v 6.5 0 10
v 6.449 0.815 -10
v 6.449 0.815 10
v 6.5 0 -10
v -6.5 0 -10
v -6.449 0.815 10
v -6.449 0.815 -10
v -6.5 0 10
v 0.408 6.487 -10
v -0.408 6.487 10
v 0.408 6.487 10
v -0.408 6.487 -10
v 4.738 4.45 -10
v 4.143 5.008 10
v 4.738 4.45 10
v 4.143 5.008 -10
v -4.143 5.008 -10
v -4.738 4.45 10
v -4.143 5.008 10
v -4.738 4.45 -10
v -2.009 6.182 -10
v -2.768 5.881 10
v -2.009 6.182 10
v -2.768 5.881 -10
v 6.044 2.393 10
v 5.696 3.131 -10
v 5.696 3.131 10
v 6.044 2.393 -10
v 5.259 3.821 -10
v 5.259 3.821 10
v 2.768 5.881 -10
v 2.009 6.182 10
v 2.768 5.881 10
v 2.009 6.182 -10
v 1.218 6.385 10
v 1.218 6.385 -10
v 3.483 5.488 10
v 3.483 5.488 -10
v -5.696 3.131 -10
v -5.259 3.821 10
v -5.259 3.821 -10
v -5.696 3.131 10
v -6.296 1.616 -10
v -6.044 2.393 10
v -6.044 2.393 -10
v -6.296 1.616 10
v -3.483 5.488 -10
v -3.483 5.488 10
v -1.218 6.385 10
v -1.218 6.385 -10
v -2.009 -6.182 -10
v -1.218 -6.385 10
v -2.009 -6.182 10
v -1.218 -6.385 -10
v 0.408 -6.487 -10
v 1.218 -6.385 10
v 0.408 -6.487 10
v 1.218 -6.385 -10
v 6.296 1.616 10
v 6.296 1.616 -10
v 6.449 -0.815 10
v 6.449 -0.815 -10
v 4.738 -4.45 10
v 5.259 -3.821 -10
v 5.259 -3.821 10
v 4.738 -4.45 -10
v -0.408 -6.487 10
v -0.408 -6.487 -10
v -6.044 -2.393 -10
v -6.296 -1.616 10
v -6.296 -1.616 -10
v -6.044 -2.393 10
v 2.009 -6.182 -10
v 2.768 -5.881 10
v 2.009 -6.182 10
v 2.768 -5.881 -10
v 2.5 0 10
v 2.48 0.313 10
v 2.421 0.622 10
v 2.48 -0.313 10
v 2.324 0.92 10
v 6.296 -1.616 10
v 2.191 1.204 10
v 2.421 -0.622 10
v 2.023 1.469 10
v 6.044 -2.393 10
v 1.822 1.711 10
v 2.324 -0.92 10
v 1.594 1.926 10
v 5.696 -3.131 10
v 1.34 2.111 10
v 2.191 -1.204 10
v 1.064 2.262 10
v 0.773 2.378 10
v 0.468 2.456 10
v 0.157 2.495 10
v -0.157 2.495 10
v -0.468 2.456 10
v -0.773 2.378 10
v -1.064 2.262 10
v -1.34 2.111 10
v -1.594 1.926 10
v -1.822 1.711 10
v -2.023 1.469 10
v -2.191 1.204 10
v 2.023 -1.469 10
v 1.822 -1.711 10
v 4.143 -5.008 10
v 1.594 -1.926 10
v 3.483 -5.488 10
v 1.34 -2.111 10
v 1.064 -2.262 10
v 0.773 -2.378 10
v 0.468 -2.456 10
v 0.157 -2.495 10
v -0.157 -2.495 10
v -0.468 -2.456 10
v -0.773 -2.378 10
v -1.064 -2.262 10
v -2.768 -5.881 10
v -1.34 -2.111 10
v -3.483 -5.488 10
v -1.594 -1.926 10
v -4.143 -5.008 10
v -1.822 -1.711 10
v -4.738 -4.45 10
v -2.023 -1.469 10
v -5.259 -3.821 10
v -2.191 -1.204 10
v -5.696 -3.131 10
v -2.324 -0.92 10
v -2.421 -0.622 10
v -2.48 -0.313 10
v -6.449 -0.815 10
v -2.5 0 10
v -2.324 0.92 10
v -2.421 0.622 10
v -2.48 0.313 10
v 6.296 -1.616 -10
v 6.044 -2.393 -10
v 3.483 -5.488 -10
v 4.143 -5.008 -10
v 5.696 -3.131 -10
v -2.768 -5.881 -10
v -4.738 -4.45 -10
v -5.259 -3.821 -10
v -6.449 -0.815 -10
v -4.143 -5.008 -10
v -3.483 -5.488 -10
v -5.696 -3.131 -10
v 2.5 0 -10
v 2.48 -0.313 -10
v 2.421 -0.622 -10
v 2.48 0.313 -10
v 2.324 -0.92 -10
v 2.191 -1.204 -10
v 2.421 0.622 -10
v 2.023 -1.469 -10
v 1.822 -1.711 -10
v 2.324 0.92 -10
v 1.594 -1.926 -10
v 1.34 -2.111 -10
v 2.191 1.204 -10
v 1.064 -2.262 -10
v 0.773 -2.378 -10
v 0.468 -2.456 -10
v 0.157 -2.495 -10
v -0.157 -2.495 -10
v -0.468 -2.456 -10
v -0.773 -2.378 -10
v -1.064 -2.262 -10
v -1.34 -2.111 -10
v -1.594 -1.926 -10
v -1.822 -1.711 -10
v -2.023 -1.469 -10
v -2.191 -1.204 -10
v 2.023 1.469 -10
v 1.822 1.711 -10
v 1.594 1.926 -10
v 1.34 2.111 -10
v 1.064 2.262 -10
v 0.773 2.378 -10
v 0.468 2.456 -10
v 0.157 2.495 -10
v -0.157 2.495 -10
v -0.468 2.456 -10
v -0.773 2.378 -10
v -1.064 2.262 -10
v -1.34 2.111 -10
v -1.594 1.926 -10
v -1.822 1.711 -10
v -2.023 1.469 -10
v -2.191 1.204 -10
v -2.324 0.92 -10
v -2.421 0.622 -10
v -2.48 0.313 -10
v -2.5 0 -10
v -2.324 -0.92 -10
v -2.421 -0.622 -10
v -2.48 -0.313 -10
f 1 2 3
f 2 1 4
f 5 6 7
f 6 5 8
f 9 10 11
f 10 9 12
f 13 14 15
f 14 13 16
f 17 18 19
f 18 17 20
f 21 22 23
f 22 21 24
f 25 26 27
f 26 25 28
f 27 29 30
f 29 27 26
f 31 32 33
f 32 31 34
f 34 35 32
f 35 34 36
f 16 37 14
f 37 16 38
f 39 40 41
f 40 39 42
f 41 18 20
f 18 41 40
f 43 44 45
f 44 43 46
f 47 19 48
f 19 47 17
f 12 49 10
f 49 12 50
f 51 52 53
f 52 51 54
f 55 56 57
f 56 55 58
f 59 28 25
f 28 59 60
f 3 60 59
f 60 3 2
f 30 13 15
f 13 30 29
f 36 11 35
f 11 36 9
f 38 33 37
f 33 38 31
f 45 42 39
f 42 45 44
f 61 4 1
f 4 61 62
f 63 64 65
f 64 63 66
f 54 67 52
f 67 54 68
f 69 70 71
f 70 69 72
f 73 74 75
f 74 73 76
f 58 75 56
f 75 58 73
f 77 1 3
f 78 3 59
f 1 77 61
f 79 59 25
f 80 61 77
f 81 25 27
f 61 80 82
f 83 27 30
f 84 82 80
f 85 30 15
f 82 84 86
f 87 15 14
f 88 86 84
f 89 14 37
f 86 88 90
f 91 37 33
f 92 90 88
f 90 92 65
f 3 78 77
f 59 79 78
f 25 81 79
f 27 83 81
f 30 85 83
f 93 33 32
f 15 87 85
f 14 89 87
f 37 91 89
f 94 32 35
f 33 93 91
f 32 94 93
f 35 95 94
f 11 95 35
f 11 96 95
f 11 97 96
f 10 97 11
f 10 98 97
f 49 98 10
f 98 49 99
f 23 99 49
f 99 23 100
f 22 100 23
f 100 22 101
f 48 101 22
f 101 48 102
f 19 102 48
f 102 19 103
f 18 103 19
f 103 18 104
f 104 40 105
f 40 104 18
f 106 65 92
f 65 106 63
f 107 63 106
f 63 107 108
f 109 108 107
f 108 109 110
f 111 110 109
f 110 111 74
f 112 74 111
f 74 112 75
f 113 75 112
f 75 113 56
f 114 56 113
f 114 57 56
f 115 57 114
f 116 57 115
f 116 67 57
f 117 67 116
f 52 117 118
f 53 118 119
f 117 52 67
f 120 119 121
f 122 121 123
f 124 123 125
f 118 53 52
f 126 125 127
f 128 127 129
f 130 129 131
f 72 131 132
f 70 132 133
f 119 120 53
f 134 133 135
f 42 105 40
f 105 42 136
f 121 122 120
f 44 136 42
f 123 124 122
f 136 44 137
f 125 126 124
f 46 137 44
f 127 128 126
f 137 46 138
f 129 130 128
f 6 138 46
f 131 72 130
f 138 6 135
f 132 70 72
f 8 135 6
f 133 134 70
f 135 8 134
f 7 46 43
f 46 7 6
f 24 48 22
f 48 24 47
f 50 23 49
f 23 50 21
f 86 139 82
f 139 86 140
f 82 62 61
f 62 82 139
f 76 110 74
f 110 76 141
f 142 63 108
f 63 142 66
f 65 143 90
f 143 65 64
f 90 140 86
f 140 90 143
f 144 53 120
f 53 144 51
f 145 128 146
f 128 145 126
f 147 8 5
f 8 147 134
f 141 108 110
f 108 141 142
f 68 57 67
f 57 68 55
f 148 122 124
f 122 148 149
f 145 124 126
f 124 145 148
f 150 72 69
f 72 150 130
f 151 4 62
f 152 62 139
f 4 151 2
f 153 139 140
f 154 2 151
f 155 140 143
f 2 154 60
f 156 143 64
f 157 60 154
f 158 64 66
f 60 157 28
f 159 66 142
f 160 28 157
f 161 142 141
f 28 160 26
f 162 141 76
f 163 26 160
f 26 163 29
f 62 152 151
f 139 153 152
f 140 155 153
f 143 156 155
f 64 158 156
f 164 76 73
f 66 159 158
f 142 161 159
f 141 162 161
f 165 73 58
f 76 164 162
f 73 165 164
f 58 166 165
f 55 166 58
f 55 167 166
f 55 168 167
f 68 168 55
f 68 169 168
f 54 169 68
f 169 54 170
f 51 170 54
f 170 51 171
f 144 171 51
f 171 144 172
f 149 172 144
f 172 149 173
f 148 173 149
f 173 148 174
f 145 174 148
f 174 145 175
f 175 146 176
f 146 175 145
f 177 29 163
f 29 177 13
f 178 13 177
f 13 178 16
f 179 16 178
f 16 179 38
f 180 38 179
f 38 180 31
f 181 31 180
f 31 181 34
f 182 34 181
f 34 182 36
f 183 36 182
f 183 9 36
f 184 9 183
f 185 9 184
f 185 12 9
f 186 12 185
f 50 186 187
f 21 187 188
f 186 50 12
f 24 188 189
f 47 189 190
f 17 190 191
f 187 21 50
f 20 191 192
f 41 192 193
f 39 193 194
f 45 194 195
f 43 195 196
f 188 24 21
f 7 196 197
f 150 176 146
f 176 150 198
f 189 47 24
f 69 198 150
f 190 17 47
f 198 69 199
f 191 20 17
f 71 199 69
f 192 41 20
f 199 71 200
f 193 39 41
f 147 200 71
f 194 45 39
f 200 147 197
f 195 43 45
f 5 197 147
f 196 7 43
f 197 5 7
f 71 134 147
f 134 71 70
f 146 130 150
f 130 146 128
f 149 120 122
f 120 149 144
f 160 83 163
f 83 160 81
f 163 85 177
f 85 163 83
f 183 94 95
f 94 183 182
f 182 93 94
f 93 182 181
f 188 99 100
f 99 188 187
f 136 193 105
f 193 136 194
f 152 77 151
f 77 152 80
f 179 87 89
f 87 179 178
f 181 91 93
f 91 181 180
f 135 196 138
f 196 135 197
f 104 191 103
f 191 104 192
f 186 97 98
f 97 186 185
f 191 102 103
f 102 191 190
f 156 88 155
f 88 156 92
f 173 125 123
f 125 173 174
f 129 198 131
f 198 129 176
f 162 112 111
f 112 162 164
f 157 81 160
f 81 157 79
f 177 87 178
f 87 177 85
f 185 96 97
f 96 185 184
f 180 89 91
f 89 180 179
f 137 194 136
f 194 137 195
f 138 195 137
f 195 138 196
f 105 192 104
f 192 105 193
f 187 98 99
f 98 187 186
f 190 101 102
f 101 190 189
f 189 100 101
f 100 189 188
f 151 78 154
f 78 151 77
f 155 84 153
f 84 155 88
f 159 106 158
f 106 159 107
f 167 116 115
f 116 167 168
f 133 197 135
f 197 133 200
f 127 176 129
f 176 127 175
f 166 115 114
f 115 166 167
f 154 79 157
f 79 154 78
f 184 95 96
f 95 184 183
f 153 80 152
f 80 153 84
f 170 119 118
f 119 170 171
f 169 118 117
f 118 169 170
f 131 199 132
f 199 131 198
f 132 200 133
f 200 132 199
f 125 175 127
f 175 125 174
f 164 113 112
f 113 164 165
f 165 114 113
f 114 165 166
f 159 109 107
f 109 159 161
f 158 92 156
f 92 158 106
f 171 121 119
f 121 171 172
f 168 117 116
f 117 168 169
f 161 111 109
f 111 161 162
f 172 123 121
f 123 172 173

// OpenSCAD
$fn = 50;


difference() {
	union() {
		translate(v = [0, 0, -10.0000000000]) {
			cylinder(h = 20, r = 6.5000000000);
		}
	}
	union() {
		translate(v = [0, 0, -100.0000000000]) {
			cylinder(h = 200, r = 2.5000000000);
		}
	}
}
